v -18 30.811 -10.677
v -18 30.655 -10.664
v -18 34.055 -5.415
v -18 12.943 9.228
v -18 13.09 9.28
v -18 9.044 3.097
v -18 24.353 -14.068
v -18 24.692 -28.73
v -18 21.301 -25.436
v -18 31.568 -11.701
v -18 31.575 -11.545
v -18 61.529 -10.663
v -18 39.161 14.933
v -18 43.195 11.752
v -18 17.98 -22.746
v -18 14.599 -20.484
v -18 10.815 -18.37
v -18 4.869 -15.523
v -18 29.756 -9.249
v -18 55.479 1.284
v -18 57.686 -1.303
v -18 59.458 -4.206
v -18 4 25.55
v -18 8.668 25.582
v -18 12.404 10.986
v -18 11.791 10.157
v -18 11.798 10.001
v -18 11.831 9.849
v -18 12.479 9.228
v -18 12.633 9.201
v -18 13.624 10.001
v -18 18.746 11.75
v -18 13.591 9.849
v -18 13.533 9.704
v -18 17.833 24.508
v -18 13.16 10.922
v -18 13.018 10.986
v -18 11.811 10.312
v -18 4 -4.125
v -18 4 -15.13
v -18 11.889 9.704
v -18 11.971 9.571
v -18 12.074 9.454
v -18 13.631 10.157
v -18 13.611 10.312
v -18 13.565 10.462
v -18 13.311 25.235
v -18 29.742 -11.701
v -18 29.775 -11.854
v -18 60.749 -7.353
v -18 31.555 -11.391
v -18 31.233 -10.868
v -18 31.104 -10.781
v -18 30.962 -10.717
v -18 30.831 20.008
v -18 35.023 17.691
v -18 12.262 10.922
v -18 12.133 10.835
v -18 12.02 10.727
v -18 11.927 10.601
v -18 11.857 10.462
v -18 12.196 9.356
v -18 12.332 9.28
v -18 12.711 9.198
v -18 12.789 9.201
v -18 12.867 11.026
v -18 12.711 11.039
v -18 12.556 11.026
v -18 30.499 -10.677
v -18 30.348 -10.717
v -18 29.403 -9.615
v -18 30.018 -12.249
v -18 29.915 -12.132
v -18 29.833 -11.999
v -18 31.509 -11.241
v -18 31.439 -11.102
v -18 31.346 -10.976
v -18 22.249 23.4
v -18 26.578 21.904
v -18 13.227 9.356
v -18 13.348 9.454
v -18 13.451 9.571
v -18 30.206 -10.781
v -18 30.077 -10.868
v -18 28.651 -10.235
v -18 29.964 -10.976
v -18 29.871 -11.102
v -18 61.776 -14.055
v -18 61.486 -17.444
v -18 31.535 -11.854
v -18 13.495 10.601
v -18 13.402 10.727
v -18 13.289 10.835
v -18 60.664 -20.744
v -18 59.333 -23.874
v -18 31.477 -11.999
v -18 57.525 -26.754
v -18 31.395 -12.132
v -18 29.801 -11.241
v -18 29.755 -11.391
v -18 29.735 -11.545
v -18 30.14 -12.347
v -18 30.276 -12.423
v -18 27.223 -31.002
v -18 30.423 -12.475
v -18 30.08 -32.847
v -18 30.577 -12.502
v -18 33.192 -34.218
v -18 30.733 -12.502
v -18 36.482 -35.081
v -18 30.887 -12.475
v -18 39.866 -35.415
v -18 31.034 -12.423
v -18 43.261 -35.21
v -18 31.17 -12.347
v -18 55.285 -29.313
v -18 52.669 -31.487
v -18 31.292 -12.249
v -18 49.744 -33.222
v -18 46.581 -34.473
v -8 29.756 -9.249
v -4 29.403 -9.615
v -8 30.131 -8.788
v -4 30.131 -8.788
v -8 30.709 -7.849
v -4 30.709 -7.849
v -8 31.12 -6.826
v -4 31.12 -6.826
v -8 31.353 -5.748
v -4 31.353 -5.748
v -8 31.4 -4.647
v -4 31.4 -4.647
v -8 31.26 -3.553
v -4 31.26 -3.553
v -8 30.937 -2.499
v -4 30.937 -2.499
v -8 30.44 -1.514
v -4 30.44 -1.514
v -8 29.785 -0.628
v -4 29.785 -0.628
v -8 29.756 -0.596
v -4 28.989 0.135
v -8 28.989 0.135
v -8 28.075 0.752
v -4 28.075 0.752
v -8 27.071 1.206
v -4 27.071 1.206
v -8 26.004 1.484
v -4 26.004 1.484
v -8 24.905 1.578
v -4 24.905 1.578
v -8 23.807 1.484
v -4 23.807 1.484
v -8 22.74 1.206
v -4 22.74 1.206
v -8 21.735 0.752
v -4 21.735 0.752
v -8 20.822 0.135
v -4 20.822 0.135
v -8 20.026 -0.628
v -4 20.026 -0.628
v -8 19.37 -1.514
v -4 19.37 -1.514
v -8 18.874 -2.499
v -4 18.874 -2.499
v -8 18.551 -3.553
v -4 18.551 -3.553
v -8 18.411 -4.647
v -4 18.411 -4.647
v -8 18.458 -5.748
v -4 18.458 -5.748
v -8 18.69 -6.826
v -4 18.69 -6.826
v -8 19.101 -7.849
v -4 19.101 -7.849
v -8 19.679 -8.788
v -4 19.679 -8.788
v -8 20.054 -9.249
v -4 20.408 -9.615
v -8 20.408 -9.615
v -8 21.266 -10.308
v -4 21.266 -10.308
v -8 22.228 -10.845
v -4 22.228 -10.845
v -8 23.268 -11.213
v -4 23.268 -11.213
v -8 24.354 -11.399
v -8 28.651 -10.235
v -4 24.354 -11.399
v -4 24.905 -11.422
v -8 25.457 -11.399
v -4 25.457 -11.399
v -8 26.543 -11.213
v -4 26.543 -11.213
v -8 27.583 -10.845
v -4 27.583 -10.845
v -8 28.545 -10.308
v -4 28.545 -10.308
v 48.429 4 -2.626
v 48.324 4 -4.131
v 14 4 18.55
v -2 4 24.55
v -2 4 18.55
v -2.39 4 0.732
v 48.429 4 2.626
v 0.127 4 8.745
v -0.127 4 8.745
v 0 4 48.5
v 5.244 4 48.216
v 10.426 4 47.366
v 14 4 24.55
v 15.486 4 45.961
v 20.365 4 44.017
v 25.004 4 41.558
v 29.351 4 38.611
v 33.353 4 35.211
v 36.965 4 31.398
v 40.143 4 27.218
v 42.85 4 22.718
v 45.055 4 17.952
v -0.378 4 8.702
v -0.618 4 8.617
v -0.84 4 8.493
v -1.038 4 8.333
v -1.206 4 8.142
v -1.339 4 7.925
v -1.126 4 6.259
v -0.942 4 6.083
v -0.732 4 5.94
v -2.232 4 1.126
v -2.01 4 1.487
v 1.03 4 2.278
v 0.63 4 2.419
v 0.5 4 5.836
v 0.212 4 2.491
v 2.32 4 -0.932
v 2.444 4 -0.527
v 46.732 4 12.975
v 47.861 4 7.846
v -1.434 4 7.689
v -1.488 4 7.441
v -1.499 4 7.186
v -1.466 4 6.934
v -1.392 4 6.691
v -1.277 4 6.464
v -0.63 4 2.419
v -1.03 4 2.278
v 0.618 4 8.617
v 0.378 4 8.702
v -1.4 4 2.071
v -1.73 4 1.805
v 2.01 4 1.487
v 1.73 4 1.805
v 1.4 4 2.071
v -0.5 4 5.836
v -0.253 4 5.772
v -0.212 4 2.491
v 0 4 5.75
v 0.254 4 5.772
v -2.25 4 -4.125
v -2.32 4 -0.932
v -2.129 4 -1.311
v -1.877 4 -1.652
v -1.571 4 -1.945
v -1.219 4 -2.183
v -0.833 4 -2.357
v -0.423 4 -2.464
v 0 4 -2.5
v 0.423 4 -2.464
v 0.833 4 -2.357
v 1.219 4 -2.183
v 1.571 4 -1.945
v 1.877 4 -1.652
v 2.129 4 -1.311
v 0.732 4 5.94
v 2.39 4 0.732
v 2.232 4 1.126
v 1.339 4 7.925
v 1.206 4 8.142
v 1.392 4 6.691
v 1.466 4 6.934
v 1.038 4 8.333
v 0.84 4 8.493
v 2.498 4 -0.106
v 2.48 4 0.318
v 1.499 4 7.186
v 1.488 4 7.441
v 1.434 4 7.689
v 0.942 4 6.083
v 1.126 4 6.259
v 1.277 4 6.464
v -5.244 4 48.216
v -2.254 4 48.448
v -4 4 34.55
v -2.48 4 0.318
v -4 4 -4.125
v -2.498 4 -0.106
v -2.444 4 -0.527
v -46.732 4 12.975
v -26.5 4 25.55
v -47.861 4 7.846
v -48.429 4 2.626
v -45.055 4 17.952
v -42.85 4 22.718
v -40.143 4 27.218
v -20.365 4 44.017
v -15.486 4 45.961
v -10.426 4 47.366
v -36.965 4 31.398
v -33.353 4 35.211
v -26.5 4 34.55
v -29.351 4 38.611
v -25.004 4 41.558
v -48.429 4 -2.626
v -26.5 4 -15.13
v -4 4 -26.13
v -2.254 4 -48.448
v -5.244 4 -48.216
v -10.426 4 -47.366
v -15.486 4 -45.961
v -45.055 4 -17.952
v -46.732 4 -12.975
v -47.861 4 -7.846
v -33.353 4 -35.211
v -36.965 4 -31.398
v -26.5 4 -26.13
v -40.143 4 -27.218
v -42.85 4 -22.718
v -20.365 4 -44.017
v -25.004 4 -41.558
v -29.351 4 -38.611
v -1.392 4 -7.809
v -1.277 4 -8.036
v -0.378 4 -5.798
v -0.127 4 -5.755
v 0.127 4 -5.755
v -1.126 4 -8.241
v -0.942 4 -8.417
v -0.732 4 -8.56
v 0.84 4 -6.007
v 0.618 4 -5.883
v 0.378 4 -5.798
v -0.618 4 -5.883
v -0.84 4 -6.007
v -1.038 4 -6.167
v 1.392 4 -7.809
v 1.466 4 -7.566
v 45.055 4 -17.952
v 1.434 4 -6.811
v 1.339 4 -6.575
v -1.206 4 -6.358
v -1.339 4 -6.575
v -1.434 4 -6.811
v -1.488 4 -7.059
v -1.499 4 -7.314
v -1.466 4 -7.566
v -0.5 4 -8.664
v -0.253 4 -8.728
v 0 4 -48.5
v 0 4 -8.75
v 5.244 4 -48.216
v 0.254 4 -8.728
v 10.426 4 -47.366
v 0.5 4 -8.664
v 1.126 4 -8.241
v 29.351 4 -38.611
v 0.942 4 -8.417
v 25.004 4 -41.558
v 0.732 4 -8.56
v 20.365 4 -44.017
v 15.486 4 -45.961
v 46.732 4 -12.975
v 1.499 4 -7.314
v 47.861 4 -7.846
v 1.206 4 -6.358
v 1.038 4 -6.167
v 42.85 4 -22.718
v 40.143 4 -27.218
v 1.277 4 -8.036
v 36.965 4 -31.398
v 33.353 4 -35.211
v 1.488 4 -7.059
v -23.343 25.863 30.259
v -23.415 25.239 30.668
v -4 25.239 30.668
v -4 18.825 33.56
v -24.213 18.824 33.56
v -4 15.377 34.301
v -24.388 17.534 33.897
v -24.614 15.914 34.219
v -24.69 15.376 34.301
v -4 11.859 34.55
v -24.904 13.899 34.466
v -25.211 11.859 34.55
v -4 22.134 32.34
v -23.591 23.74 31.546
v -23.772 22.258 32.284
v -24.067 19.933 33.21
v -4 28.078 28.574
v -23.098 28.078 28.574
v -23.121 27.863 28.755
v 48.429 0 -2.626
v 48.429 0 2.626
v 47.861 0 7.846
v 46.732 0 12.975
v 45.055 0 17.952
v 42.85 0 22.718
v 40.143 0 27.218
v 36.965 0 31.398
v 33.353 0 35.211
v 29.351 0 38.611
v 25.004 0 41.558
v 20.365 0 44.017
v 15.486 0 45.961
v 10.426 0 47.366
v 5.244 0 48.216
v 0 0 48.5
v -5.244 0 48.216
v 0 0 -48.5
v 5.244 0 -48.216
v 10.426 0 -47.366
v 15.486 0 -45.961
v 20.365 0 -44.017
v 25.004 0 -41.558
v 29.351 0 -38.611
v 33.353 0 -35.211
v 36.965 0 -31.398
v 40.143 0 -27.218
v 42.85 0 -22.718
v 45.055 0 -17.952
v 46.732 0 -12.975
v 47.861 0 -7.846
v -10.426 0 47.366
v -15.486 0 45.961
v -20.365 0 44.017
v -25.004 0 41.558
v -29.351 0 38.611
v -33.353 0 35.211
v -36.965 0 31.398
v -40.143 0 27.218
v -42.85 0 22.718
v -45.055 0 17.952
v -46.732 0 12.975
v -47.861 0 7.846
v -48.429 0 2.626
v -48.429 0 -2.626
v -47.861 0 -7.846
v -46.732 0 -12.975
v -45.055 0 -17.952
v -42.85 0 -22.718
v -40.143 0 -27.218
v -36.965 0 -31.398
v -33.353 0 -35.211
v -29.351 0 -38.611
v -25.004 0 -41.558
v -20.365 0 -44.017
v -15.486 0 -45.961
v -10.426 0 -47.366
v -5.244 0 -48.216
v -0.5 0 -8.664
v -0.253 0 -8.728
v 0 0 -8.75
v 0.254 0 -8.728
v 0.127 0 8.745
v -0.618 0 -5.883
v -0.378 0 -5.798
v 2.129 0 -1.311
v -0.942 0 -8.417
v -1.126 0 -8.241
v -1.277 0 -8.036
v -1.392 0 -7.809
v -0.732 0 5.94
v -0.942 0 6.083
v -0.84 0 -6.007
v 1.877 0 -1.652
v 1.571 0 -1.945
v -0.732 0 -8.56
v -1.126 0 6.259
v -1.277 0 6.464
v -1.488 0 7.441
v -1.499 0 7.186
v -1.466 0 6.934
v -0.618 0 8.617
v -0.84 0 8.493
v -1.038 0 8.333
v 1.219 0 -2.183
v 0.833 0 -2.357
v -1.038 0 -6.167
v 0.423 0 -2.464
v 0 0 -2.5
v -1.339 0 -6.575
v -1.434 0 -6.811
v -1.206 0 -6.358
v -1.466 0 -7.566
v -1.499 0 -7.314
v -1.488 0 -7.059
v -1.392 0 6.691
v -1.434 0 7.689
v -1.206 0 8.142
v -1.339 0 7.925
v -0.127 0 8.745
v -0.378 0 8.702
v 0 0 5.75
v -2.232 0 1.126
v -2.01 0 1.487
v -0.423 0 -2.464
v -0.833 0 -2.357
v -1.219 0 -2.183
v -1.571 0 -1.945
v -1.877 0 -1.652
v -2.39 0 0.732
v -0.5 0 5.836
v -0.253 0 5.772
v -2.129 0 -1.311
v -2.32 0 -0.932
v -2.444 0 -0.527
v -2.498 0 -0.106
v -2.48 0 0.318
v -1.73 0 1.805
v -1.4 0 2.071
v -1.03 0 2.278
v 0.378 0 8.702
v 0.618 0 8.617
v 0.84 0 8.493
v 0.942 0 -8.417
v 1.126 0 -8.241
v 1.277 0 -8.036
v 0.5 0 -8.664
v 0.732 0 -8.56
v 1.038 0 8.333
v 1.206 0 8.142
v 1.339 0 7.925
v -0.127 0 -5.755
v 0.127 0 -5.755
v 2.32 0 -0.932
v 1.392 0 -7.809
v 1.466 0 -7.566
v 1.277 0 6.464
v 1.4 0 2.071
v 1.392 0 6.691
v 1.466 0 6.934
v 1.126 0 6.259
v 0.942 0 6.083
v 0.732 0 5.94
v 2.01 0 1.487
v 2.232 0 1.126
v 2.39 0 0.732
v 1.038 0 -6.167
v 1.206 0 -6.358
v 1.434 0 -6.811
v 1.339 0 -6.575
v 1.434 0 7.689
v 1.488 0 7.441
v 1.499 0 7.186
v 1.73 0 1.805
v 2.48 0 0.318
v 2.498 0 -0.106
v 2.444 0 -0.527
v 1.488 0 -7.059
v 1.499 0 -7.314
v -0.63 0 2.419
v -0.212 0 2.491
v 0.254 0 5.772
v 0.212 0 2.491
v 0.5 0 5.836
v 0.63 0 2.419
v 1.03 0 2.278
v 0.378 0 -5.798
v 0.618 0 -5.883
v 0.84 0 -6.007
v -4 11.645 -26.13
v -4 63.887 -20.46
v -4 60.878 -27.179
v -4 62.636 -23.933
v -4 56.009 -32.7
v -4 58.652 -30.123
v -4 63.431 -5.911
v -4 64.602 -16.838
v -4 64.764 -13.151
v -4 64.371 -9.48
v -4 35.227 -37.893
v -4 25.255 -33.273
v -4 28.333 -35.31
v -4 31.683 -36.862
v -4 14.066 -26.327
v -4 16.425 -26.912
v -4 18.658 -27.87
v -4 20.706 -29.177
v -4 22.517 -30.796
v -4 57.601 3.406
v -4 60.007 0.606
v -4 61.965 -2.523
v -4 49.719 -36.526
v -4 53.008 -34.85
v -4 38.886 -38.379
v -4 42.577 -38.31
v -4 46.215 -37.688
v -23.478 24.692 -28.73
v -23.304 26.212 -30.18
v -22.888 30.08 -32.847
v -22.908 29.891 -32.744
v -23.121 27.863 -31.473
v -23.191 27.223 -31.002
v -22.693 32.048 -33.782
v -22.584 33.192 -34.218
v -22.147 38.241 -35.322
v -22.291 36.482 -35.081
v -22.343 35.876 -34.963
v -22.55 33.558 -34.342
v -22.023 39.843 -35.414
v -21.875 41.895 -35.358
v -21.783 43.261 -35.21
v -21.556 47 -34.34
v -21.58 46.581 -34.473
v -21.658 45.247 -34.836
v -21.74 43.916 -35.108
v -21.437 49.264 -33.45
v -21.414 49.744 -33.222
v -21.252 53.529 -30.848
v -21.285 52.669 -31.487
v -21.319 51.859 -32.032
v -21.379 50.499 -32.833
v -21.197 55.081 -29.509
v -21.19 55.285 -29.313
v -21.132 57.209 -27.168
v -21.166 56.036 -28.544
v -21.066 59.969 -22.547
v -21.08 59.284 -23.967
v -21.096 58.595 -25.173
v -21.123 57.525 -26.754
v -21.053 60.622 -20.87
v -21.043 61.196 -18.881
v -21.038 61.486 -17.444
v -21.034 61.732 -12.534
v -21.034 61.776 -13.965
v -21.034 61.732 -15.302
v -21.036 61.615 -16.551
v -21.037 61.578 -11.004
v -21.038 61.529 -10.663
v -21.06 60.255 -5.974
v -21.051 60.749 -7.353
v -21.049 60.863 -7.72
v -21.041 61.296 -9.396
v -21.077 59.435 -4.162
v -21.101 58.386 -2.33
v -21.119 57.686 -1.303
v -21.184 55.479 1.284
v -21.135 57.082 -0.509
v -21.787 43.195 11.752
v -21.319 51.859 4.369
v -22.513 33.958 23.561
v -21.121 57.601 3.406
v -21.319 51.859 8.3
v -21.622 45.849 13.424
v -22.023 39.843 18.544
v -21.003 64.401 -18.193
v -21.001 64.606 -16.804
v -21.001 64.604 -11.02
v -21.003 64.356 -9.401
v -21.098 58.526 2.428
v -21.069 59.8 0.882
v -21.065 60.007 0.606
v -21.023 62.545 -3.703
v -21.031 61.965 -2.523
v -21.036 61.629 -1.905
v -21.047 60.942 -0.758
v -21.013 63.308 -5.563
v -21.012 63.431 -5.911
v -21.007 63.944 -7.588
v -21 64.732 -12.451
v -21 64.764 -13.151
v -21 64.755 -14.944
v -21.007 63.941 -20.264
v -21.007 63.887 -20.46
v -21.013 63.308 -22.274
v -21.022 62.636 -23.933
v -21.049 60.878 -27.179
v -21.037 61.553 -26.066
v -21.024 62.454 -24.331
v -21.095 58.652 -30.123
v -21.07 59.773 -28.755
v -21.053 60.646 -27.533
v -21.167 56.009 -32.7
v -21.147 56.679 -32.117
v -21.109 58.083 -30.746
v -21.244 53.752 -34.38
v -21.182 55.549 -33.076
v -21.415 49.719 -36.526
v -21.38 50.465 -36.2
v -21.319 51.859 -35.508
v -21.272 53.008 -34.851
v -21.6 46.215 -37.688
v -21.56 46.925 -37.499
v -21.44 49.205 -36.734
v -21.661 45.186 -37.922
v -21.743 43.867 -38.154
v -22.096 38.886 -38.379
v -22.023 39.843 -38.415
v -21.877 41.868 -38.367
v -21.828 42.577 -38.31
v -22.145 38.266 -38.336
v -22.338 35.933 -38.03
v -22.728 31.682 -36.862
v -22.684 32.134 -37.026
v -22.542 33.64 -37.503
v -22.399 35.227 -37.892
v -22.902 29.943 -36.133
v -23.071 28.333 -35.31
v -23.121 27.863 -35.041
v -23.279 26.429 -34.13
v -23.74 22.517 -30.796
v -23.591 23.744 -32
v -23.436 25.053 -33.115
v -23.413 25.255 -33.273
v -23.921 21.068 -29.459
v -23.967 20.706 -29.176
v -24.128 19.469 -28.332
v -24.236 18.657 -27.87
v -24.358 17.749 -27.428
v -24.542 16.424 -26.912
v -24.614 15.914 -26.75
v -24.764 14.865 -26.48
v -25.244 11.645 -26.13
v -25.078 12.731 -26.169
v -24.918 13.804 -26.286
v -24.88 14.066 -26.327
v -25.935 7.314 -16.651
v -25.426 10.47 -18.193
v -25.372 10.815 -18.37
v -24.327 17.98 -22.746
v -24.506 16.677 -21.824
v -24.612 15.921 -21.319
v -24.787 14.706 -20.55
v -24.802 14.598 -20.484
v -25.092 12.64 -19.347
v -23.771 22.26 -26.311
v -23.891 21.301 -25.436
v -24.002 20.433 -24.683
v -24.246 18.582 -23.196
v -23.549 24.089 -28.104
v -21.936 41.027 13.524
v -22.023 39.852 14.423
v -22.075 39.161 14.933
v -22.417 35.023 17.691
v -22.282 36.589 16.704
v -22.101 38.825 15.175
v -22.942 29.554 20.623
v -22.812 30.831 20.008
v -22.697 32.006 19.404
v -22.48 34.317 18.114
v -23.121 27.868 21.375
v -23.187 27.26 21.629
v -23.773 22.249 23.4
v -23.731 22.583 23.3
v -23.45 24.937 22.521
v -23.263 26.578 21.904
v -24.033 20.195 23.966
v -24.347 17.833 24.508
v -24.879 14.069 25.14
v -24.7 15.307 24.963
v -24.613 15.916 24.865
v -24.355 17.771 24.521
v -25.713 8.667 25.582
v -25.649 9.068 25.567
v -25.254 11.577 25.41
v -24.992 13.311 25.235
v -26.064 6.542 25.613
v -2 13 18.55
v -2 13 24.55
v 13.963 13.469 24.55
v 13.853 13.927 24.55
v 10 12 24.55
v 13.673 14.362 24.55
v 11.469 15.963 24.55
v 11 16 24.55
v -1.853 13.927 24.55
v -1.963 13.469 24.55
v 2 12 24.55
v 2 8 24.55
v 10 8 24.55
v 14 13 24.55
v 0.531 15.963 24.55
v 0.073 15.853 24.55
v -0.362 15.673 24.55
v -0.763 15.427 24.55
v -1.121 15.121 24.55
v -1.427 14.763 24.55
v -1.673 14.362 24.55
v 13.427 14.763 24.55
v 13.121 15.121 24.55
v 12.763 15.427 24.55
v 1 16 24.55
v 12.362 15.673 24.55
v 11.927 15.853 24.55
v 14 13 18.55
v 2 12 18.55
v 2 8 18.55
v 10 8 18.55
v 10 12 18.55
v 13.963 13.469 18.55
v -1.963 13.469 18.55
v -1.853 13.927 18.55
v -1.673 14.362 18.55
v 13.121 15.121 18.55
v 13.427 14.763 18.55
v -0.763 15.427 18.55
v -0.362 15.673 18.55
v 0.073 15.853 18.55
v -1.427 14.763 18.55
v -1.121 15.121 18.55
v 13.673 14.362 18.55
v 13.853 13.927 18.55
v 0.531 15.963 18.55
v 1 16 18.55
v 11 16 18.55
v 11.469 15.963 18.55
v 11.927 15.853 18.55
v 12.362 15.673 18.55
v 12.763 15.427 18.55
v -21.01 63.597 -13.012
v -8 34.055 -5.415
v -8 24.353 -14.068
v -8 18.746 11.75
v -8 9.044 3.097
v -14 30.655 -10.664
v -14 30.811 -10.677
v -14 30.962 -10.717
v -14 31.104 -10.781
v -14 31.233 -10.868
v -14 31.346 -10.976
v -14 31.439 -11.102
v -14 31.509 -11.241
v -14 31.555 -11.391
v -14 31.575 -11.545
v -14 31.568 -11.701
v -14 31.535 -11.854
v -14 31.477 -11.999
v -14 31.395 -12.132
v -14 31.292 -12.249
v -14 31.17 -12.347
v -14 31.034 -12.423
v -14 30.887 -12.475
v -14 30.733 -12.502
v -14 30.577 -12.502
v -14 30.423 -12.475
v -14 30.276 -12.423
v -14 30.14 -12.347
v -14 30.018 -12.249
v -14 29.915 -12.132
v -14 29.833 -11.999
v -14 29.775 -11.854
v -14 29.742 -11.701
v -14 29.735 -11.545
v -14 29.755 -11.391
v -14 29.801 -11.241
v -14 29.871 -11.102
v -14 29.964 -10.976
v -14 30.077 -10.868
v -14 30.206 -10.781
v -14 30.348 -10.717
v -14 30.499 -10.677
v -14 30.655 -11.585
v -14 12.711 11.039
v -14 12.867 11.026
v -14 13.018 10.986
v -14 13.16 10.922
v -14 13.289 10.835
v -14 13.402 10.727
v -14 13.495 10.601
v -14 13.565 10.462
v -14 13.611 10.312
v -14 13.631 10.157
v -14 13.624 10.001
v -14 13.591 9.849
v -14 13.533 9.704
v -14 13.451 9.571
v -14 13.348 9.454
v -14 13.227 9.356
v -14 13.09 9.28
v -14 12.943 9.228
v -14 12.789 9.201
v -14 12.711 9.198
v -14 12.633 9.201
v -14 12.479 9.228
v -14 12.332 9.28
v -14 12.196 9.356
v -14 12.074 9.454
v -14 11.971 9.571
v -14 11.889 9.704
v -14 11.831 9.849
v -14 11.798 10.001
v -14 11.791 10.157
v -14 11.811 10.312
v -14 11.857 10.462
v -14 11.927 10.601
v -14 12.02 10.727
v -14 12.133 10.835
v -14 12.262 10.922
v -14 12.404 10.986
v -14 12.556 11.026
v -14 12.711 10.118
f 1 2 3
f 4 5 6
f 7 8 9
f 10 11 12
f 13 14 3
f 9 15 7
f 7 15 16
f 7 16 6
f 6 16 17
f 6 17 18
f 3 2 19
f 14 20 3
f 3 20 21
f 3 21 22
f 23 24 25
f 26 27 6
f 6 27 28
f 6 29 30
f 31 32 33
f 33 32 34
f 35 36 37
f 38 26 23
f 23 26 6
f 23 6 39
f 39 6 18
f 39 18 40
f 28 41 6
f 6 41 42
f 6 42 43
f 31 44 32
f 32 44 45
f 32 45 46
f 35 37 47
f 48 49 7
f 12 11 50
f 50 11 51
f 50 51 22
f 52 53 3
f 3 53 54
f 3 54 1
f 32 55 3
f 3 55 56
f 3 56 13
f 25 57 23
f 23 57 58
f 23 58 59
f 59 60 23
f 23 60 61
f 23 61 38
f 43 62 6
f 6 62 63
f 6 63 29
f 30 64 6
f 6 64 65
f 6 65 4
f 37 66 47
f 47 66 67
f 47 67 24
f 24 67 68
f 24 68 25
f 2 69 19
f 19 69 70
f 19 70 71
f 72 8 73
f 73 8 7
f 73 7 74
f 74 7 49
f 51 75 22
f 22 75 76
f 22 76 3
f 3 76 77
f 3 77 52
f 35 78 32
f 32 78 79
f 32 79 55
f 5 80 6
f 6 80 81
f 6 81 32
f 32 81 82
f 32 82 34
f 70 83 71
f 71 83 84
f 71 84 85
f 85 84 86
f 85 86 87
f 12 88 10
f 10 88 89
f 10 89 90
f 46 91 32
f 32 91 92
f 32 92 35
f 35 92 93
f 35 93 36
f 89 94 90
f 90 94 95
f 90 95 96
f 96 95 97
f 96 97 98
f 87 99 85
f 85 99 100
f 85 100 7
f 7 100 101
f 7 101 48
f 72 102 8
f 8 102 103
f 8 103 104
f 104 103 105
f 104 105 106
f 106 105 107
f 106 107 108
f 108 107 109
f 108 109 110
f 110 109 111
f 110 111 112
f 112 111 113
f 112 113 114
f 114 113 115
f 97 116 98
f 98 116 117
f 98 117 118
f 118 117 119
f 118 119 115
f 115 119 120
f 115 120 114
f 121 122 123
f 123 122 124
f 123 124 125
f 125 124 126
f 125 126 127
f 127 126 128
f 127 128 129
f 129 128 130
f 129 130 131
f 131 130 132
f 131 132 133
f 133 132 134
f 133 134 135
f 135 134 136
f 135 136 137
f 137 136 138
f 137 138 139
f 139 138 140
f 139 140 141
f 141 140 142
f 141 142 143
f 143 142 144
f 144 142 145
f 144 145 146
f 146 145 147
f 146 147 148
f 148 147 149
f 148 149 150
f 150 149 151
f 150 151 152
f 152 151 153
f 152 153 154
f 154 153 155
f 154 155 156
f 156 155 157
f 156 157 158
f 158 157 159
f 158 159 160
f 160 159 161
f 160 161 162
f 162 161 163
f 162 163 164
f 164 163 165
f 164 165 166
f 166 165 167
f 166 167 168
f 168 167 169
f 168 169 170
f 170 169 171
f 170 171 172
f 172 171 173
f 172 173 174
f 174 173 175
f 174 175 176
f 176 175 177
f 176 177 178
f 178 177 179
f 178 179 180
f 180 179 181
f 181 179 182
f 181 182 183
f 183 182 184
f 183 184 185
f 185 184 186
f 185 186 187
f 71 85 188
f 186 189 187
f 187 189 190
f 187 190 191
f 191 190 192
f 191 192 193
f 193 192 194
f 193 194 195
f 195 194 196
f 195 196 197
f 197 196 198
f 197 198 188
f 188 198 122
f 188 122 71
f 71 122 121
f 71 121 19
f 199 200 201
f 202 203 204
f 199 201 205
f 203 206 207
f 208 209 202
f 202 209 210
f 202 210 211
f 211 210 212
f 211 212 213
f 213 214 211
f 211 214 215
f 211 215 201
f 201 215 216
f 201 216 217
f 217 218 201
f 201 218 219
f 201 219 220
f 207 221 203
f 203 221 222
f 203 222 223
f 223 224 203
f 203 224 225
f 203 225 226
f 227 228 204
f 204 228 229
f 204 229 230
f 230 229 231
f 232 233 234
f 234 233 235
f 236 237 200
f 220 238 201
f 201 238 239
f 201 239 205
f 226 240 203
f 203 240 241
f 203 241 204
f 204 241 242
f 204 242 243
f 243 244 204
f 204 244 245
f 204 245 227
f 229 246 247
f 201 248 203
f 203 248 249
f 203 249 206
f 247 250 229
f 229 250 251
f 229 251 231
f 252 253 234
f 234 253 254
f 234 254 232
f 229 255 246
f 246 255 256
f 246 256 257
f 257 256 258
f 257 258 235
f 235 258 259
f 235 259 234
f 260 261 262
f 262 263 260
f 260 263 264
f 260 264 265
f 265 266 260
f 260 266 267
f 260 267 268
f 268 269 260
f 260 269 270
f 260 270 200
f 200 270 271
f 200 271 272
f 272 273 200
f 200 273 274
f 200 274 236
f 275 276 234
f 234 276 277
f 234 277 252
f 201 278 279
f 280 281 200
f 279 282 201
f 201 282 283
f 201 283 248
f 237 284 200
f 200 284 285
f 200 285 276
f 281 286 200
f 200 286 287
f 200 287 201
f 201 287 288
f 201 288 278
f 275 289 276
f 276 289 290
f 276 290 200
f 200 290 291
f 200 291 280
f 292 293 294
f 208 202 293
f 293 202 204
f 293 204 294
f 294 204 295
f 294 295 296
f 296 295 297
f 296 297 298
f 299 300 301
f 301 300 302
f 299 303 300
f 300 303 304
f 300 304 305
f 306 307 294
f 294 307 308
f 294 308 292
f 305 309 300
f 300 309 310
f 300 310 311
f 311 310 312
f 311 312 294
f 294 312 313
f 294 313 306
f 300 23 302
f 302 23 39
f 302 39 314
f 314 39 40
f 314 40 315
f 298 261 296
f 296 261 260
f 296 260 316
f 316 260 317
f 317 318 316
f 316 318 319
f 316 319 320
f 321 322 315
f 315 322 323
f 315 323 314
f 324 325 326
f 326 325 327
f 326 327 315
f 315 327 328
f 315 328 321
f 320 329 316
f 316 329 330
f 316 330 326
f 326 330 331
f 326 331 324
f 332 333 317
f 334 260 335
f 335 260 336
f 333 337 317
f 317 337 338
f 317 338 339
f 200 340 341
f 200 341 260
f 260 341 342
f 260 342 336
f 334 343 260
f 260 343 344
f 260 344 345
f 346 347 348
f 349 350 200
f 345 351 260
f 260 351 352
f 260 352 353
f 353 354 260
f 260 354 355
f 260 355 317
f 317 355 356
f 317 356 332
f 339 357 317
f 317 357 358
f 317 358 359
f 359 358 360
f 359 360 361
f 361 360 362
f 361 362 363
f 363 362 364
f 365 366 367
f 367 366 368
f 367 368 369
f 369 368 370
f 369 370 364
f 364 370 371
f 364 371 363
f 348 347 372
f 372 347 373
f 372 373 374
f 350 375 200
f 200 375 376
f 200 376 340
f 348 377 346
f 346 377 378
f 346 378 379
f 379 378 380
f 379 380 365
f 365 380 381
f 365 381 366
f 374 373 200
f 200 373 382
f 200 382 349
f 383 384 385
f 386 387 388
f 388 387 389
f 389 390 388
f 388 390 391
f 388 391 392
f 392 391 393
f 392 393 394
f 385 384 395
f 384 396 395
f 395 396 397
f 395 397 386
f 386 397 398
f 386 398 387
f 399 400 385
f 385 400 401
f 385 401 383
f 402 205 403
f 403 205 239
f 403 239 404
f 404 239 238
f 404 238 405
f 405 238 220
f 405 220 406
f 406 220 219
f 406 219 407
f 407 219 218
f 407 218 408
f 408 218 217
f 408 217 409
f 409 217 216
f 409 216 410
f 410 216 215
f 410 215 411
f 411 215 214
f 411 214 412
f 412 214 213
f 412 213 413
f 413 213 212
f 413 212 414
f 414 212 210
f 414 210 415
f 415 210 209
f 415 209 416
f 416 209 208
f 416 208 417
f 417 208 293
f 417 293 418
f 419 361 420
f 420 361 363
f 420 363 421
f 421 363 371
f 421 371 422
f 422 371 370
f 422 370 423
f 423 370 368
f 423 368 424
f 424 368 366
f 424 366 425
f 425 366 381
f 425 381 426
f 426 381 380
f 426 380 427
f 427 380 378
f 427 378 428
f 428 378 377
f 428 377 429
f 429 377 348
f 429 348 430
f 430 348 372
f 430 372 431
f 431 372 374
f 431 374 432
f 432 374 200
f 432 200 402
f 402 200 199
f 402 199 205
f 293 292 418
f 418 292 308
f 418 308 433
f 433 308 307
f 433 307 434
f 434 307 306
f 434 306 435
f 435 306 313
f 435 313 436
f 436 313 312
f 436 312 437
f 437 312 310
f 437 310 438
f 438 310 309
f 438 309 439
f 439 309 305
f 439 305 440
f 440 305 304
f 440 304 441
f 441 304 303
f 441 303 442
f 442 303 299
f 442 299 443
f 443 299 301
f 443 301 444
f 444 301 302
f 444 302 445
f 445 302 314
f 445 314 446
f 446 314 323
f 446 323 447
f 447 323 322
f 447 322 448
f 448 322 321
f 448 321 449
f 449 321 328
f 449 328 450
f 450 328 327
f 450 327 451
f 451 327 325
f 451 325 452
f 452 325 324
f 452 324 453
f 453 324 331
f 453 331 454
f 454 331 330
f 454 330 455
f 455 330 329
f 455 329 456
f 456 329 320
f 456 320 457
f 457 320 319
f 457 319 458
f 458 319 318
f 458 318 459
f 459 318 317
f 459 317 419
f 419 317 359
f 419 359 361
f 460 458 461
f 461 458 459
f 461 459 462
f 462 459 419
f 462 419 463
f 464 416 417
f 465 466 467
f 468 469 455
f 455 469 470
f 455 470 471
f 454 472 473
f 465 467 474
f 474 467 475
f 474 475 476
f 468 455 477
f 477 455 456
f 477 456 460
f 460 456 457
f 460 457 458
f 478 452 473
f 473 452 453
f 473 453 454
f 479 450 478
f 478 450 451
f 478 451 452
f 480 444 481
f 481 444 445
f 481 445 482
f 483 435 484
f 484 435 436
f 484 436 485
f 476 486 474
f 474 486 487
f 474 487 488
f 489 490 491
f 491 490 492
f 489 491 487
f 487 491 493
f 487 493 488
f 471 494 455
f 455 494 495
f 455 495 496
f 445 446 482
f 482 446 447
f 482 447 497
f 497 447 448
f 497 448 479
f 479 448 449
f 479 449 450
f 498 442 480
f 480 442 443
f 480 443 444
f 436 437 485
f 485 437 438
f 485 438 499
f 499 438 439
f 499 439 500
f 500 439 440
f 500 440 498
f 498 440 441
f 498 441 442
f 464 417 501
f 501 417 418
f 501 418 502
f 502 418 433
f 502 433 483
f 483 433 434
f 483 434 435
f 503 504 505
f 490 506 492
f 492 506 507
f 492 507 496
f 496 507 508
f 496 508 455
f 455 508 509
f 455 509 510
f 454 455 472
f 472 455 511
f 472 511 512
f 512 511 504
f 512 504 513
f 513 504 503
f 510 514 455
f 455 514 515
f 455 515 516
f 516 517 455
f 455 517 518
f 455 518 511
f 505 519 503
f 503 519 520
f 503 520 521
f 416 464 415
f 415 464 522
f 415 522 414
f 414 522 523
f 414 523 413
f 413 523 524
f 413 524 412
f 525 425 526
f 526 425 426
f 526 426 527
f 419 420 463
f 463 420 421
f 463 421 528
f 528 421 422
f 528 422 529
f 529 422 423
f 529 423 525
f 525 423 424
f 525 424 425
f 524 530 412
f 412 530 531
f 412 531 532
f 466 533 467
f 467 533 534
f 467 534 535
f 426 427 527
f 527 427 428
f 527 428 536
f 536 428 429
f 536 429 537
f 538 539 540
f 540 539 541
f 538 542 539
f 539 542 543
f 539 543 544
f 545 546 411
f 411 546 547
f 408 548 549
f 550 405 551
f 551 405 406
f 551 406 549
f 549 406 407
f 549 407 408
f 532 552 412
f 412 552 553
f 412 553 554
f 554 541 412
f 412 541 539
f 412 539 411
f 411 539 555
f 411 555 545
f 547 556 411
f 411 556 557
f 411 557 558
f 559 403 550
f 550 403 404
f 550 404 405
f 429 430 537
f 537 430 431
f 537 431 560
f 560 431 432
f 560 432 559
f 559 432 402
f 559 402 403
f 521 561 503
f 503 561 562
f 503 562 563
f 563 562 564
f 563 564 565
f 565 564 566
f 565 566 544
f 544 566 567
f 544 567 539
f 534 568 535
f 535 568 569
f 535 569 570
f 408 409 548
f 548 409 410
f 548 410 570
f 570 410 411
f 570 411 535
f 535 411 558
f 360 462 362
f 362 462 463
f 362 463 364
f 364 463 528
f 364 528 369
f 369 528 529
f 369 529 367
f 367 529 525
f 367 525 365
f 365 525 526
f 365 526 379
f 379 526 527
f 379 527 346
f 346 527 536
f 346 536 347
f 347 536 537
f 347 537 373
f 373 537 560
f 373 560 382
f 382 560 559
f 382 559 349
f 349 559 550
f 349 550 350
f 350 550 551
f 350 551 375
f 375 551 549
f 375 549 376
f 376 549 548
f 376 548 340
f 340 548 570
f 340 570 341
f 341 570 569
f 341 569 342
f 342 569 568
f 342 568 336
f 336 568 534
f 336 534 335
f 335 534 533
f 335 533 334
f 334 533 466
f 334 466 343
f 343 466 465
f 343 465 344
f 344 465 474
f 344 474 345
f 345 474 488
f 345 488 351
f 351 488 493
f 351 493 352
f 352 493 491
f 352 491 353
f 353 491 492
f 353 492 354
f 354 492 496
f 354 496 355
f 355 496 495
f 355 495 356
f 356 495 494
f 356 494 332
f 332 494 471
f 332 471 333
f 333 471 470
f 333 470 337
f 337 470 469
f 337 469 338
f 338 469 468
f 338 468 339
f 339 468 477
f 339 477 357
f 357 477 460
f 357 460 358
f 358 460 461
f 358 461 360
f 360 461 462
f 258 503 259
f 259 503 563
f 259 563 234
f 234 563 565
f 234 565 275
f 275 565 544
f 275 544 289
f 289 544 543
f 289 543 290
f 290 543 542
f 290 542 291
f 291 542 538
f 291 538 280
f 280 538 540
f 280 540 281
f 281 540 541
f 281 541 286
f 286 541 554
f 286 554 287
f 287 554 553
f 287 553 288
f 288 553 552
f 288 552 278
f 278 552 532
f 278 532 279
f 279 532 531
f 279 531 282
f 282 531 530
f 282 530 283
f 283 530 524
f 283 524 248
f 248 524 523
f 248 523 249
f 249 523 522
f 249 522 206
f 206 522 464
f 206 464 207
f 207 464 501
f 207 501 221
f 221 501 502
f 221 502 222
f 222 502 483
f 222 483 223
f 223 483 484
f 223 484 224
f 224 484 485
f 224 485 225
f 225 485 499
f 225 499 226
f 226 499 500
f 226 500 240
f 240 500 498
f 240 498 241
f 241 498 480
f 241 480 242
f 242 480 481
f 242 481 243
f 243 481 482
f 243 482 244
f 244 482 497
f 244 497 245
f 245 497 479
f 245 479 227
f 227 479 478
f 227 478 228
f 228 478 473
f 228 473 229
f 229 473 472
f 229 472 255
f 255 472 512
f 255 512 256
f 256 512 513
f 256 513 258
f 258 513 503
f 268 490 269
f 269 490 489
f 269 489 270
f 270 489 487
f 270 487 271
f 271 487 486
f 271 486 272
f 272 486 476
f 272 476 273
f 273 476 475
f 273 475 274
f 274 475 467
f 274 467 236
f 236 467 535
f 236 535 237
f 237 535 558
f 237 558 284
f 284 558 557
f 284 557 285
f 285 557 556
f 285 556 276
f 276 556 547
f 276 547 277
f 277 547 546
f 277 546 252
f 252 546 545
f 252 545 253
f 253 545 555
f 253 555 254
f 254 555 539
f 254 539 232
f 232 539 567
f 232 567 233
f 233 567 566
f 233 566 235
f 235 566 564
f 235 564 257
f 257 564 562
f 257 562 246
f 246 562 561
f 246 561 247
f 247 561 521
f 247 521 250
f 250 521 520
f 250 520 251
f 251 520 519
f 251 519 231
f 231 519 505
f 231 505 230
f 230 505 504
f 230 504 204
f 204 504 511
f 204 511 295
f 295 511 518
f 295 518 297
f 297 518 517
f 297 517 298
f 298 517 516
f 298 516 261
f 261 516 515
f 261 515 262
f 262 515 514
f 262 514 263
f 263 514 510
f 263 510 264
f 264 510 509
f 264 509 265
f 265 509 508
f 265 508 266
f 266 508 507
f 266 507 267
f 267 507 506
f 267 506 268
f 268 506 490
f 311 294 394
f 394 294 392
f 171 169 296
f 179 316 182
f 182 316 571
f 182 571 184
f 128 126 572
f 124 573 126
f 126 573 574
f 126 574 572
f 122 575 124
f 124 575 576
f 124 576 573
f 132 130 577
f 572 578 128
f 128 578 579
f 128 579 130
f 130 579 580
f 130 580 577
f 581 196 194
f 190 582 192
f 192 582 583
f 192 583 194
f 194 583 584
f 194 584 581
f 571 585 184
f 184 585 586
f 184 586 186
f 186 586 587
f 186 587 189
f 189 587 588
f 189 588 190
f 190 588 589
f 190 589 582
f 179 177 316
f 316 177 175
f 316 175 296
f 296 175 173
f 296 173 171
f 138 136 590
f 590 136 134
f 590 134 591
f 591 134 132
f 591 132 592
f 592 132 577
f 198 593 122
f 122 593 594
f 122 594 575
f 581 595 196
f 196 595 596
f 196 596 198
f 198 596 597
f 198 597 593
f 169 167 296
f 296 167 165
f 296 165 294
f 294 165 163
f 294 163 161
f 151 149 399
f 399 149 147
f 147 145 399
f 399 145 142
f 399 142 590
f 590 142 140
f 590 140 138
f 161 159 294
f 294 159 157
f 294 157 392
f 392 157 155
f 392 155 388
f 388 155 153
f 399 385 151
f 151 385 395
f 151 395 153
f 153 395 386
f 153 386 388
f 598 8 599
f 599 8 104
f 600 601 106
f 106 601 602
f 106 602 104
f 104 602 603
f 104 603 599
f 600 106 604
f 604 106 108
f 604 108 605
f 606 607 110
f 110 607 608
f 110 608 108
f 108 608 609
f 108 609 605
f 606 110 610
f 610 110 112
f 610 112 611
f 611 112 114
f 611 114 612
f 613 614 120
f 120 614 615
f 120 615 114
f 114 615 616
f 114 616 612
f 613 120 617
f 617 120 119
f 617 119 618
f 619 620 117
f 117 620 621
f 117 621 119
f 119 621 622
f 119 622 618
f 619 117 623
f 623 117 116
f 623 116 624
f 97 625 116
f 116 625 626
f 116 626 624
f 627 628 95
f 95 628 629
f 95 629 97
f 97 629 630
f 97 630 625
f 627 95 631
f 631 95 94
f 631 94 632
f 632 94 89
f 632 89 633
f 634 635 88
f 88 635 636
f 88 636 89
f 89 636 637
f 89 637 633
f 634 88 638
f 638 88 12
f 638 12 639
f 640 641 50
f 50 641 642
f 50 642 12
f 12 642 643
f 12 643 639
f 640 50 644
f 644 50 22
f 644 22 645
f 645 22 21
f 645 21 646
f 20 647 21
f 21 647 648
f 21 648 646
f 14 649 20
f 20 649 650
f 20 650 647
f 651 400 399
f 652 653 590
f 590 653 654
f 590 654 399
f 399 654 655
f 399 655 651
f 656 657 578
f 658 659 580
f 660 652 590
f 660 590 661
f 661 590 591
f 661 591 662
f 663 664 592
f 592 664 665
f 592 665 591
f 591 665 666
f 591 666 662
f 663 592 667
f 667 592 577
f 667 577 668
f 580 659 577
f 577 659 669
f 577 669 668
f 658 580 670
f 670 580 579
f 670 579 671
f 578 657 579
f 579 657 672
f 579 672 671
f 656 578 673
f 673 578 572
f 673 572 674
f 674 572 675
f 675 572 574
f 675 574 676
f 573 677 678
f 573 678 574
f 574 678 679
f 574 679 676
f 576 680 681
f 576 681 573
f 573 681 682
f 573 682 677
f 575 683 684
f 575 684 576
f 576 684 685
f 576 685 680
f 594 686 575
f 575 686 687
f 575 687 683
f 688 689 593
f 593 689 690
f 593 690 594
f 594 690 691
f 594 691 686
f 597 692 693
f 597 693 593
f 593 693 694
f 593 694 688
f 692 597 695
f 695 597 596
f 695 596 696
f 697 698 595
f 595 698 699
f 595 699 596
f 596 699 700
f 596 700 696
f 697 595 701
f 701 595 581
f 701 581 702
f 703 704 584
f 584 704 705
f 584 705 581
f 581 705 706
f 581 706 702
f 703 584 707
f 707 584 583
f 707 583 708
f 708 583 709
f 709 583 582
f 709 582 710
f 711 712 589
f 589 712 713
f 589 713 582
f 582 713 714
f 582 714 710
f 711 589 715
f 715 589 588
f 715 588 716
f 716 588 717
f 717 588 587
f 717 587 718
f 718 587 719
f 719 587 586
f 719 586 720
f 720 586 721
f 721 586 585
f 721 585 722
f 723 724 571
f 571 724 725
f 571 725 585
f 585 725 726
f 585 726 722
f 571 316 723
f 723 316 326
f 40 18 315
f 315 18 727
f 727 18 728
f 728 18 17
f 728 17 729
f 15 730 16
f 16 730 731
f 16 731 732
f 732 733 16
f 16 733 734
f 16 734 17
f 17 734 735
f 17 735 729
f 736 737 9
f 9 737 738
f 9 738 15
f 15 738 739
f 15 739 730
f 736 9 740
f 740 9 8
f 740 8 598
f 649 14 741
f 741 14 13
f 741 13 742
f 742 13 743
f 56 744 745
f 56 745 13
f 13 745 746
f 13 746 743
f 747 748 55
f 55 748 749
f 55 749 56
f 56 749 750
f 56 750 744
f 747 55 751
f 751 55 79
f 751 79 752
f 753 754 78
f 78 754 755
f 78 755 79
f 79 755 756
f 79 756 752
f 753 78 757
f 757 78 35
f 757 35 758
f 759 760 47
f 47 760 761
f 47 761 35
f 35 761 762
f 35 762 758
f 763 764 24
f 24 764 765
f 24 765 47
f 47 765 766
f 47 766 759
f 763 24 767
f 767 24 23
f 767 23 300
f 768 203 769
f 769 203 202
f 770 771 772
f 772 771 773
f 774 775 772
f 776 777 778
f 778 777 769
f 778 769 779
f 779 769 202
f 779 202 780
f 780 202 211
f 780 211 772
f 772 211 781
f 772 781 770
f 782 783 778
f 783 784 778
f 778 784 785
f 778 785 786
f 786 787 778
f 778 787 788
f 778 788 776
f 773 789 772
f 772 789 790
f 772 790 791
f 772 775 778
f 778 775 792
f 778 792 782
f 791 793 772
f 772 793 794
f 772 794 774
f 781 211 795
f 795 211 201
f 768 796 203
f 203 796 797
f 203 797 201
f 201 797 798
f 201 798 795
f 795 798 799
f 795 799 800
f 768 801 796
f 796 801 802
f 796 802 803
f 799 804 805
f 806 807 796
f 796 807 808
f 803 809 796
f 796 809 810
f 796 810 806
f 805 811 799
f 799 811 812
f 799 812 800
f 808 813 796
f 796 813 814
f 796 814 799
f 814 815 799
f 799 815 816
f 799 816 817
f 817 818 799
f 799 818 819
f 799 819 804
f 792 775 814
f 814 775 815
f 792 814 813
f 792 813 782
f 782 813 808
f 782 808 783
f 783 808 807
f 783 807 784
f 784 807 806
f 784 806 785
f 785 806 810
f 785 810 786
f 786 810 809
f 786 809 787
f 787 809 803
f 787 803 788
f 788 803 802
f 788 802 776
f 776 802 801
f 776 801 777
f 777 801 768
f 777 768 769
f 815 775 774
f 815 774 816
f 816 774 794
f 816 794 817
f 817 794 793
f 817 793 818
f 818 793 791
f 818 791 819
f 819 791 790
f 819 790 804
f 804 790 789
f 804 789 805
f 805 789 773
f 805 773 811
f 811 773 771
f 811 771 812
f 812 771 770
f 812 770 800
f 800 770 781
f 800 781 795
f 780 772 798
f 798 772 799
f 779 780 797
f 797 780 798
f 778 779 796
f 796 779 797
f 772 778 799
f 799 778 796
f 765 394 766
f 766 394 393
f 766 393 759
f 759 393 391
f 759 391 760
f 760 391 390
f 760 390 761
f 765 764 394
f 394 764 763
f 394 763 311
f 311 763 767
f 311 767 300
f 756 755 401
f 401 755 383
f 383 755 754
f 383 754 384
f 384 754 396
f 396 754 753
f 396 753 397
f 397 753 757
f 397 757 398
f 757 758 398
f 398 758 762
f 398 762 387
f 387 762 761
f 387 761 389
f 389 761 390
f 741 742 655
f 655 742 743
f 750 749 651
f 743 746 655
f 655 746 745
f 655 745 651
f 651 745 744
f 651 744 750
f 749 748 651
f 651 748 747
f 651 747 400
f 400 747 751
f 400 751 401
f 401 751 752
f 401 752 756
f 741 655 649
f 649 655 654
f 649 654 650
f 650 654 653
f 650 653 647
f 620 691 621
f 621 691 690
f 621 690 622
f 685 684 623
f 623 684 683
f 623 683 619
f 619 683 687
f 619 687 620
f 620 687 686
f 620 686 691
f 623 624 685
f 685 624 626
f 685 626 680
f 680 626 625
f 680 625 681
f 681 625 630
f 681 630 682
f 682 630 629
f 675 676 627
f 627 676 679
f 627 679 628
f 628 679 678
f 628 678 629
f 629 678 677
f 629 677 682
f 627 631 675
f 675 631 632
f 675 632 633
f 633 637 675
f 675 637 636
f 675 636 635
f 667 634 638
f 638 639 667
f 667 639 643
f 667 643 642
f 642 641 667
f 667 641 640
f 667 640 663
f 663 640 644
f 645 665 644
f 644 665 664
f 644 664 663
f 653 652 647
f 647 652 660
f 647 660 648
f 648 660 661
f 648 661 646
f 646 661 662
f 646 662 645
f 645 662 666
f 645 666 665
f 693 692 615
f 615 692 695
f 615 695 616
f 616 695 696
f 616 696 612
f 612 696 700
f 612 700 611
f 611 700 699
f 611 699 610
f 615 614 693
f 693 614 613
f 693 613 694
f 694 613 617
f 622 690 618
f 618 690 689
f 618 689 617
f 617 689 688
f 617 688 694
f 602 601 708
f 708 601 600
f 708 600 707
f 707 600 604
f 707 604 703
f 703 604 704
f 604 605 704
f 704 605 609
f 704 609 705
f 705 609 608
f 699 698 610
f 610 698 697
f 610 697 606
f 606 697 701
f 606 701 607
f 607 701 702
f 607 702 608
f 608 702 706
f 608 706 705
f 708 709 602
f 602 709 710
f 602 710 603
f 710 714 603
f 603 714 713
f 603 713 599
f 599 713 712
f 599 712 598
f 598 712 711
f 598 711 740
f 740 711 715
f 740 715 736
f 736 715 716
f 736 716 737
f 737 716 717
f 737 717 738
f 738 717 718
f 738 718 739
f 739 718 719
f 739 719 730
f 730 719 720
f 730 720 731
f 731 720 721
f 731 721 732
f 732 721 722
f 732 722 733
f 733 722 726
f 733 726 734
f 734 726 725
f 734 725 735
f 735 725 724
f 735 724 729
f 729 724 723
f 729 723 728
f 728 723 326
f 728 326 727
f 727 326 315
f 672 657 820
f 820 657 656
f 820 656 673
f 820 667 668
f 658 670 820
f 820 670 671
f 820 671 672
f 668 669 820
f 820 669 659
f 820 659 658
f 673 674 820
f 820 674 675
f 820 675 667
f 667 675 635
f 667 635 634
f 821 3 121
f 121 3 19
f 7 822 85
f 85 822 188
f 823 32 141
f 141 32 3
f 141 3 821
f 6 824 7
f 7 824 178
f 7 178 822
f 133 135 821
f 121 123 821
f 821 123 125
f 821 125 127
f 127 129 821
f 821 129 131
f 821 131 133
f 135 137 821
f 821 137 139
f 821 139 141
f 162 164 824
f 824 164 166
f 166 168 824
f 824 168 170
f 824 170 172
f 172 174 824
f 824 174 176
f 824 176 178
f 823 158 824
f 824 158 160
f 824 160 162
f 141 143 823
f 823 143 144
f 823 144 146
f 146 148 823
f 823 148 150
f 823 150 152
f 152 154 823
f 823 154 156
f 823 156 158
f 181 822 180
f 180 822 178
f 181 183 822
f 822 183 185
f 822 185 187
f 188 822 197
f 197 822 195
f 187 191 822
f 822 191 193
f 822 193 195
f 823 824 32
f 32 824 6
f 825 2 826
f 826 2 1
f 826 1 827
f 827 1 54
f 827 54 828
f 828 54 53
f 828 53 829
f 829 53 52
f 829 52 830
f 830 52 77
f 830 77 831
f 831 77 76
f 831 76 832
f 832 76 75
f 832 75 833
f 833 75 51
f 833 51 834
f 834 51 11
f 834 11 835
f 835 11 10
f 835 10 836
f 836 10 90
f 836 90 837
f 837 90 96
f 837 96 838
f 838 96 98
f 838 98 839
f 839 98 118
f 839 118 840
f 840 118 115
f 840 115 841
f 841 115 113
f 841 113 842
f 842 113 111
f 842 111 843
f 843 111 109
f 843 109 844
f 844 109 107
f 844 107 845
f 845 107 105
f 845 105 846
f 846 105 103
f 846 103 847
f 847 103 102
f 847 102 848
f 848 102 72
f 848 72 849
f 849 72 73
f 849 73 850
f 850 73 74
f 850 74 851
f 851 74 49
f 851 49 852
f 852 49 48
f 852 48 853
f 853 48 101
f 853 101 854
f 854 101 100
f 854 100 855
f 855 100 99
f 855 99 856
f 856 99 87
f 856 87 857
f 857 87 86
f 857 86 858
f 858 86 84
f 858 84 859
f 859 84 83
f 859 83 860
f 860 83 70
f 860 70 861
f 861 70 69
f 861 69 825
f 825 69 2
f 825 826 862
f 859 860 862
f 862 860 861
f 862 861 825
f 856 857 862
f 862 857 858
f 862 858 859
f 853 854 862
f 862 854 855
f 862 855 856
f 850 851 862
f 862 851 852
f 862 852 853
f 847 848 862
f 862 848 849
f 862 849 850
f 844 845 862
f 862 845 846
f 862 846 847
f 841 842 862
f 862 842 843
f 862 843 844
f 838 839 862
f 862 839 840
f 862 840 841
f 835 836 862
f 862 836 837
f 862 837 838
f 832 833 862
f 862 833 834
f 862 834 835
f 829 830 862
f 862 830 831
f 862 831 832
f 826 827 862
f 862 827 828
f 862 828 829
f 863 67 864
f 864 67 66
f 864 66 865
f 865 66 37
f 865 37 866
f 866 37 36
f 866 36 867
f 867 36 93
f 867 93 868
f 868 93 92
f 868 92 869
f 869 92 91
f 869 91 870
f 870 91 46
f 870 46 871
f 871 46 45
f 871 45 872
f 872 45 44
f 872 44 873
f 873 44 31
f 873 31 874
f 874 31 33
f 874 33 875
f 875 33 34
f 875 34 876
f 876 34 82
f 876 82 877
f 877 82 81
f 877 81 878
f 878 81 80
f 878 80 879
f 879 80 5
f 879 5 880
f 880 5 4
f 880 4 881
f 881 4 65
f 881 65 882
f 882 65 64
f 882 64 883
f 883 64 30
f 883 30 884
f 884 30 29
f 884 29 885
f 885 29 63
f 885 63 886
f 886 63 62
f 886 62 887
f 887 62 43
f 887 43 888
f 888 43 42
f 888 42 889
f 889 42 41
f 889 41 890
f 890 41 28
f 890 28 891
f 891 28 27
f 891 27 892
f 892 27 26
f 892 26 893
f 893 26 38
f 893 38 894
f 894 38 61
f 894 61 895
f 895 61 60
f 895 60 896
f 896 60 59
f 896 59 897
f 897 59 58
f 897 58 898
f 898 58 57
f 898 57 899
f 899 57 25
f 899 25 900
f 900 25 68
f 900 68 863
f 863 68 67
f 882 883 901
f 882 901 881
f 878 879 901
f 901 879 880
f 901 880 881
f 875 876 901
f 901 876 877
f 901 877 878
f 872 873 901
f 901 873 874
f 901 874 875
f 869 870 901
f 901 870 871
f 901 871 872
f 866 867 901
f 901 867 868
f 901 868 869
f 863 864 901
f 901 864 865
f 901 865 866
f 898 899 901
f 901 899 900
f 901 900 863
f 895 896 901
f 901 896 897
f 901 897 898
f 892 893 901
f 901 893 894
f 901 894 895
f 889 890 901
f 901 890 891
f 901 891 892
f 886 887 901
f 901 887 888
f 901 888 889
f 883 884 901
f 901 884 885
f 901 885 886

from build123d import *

# Parameters (mm, degrees)
SKETCH2_R                       = 48.5
BOSS_EXTRUDE1_DEPTH             = 4
SKETCH4_R                       = 1.5
CUT_EXTRUDE2_DEPTH              = 69.705894944
SKETCH5_R                       = 2.5
CUT_EXTRUDE3_DEPTH              = 69.705894944
BOSS_EXTRUDE2_DEPTH             = 14
BOSS_EXTRUDE7_DEPTH             = 9
BOSS_EXTRUDE7_DIRECTION_2_REACH = 104.912
BOSS_EXTRUDE10_DEPTH            = 9
SKETCH27_W                      = 16
SKETCH27_H                      = 6
BOSS_EXTRUDE11_DEPTH            = 12
FILLET6_R                       = 3
CUT_EXTRUDE16_REACH             = 111.016
SKETCH28_W                      = 8
SKETCH28_H                      = 4
CUT_EXTRUDE17_DEPTH             = 95.342420983
CUT_EXTRUDE17_DEPTH_BACK        = 95.342420983
SKETCH31_R                      = 6.5
CUT_EXTRUDE18_DEPTH             = 105.740118374
CUT_EXTRUDE19_DEPTH             = 10
SKETCH32_R                      = 0.92049896
CUT_EXTRUDE20_DEPTH             = 4
SKETCH32_3_R                    = 0.92049896
CUT_EXTRUDE21_DEPTH             = 4


with BuildPart() as part:
    # Sketch2 → Boss-Extrude1 (new body)
    with BuildSketch(Plane(origin=(0, 0, 0), x_dir=(1, 0, 0), z_dir=(0, 1, 0))):
        with Locations(Location((0, 0, 0), (0, 0, 270))):
            Circle(SKETCH2_R)
    extrude(amount=BOSS_EXTRUDE1_DEPTH)

    # Sketch4 → Cut-Extrude2 (cut, through all)
    with BuildSketch(Plane.XZ):
        with Locations(Location((0, 7.25, 0), (0, 0, 270))):
            Circle(SKETCH4_R)
        with Locations(Location((0, -7.25, 0), (0, 0, 270))):
            Circle(SKETCH4_R)
    extrude(amount=-CUT_EXTRUDE2_DEPTH, mode=Mode.SUBTRACT)

    # Sketch5 → Cut-Extrude3 (cut, through all)
    with BuildSketch(Plane.XZ):
        with Locations(Location((0, 0, 0), (0, 0, 270))):
            Circle(SKETCH5_R)
    extrude(amount=-CUT_EXTRUDE3_DEPTH, mode=Mode.SUBTRACT)

    # Sketch7 → Boss-Extrude2 (add)
    with BuildSketch(Plane(origin=(-4, 0, 0), x_dir=(0, 0, -1), z_dir=(1, 0, 0))):
        with BuildLine():
            Line((23.129947874, 4), (23.129947874, 11.644549616))
            ThreePointArc((23.129947874, 11.644549616), (24.589048403, 18.743749901), (28.729797284, 24.692011643))
            ThreePointArc((28.729797284, 24.692011643), (29.313383054, 55.284736897), (-1.284289494, 55.479275971))
            Line((-1.284289494, 55.479275971), (-27.227315747, 29.536249718))
            ThreePointArc((-27.227315747, 29.536249718), (-32.64663453, 21.425665997), (-34.549646217, 11.858580188))
            Line((-34.549646217, 11.858580188), (-34.549646217, 4))
            Line((-34.549646217, 4), (23.129947874, 4))
        make_face()
    extrude(amount=-BOSS_EXTRUDE2_DEPTH)

    # Sketch17 → Boss-Extrude7 (add)
    with BuildSketch(Plane.ZY.offset(18)):
        with BuildLine():
            ThreePointArc((34.549646217, 11.858580188), (33.008342843, 20.500891953), (28.574482006, 28.077569775))
            ThreePointArc((28.574482006, 28.077569775), (27.915386359, 28.820289685), (27.227315747, 29.536249718))
            Line((27.227315747, 29.536249718), (1.284289494, 55.479275971))
            Line((1.284289494, 55.479275971), (26.295003593, 26.127182305))
            ThreePointArc((26.295003593, 26.127182305), (30.194232218, 19.461281607), (31.549646217, 11.858580188))
            Line((31.549646217, 11.858580188), (31.549646217, 4))
            Line((31.549646217, 4), (34.549646217, 4))
            Line((34.549646217, 4), (34.549646217, 11.858580188))
        make_face()
        with BuildLine():
            Line((28.574482006, 28.077569775), (3.405609837, 57.600596315))
            ThreePointArc((3.405609837, 57.600596315), (-31.461505391, 57.378912253), (-30.796489049, 22.517434639))
            ThreePointArc((-30.796489049, 22.517434639), (-27.345864981, 17.560549854), (-26.129947874, 11.644549616))
            Line((-26.129947874, 11.644549616), (-26.129947874, 4))
            Line((-26.129947874, 4), (-23.129947874, 4))
            Line((-23.129947874, 4), (-23.129947874, 11.644549616))
            ThreePointArc((-23.129947874, 11.644549616), (-24.589048403, 18.743749901), (-28.729797284, 24.692011643))
            ThreePointArc((-28.729797284, 24.692011643), (-29.313383054, 55.284736897), (1.284289494, 55.479275971))
            Line((1.284289494, 55.479275971), (27.227315747, 29.536249718))
            ThreePointArc((27.227315747, 29.536249718), (27.915386359, 28.820289685), (28.574482006, 28.077569775))
        make_face()
    extrude(amount=BOSS_EXTRUDE7_DEPTH)

    # Boss-Extrude7 direction 2: up to this face of the body (flat: up to its plane)
    boss_extrude7_direction_2_end = Plane(part.part.faces().sort_by_distance((-4, 29.339157607, -2.736239069))[0])
    # Sketch17 → Boss-Extrude7 direction 2 (add, up to the picked face)
    with BuildSketch(Plane.ZY.offset(18), mode=Mode.PRIVATE) as boss_extrude7_direction_2_sk1:
        with BuildLine():
            ThreePointArc((34.549646217, 11.858580188), (33.008342843, 20.500891953), (28.574482006, 28.077569775))
            ThreePointArc((28.574482006, 28.077569775), (27.915386359, 28.820289685), (27.227315747, 29.536249718))
            Line((27.227315747, 29.536249718), (1.284289494, 55.479275971))
            Line((1.284289494, 55.479275971), (26.295003593, 26.127182305))
            ThreePointArc((26.295003593, 26.127182305), (30.194232218, 19.461281607), (31.549646217, 11.858580188))
            Line((31.549646217, 11.858580188), (31.549646217, 4))
            Line((31.549646217, 4), (34.549646217, 4))
            Line((34.549646217, 4), (34.549646217, 11.858580188))
        make_face()
    boss_extrude7_direction_2_tool1 = split(extrude(boss_extrude7_direction_2_sk1.sketch, amount=-BOSS_EXTRUDE7_DIRECTION_2_REACH, mode=Mode.PRIVATE), bisect_by=boss_extrude7_direction_2_end, keep=Keep.BOTH, mode=Mode.PRIVATE)
    # Sketch17 → Boss-Extrude7 direction 2 (add, up to the picked face)
    with BuildSketch(Plane.ZY.offset(18), mode=Mode.PRIVATE) as boss_extrude7_direction_2_sk2:
        with BuildLine():
            Line((28.574482006, 28.077569775), (3.405609837, 57.600596315))
            ThreePointArc((3.405609837, 57.600596315), (-31.461505391, 57.378912253), (-30.796489049, 22.517434639))
            ThreePointArc((-30.796489049, 22.517434639), (-27.345864981, 17.560549854), (-26.129947874, 11.644549616))
            Line((-26.129947874, 11.644549616), (-26.129947874, 4))
            Line((-26.129947874, 4), (-23.129947874, 4))
            Line((-23.129947874, 4), (-23.129947874, 11.644549616))
            ThreePointArc((-23.129947874, 11.644549616), (-24.589048403, 18.743749901), (-28.729797284, 24.692011643))
            ThreePointArc((-28.729797284, 24.692011643), (-29.313383054, 55.284736897), (1.284289494, 55.479275971))
            Line((1.284289494, 55.479275971), (27.227315747, 29.536249718))
            ThreePointArc((27.227315747, 29.536249718), (27.915386359, 28.820289685), (28.574482006, 28.077569775))
        make_face()
    boss_extrude7_direction_2_tool2 = split(extrude(boss_extrude7_direction_2_sk2.sketch, amount=-BOSS_EXTRUDE7_DIRECTION_2_REACH, mode=Mode.PRIVATE), bisect_by=boss_extrude7_direction_2_end, keep=Keep.BOTH, mode=Mode.PRIVATE)
    add(boss_extrude7_direction_2_tool1.solids().sort_by(Axis((-18, 4.612919, 33.049646), (1, 0, 0)))[0])
    add(boss_extrude7_direction_2_tool2.solids().sort_by(Axis((-18, 43.147366, 14.895406), (1, 0, 0)))[0])

    # Sketch25 → Boss-Extrude10 (add)
    with BuildSketch(Plane.ZY.offset(18)):
        with BuildLine():
            ThreePointArc((-28.729797284, 24.692011643), (-24.589048403, 18.743749901), (-23.129947874, 11.644549616))
            Line((-23.129947874, 11.644549616), (-23.129947874, 4))
            Line((-23.129947874, 4), (-15.129947874, 4))
            add(Edge.make_bspline(
                [(-28.729797284, 24.692011643), (-21.954867515, 18.253200081), (-19.09405247, 12.798017691), (-15.129947874, 4)],
                knots=[0, 0, 0, 0, 1, 1, 1, 1], degree=3))
        make_face()
        with BuildLine():
            add(Edge.make_bspline(
                [(11.751619577, 43.19501844), (26.551255916, 25.8264495), (25.549646217, 4)],
                knots=[0, 0, 0, 1, 1, 1], degree=2))
            Line((25.549646217, 4), (31.549646217, 4))
            Line((31.549646217, 4), (31.549646217, 11.858580188))
            ThreePointArc((31.549646217, 11.858580188), (30.194232218, 19.461281607), (26.295003593, 26.127182305))
            Line((26.295003593, 26.127182305), (11.751619577, 43.19501844))
        make_face()
    extrude(amount=BOSS_EXTRUDE10_DEPTH)

    # Sketch27 → Boss-Extrude11 (add)
    with BuildSketch(Plane(origin=(0, 4, 0), x_dir=(1, 0, 0), z_dir=(0, 1, 0))):
        with Locations((6, -21.549646217)):
            Rectangle(SKETCH27_W, SKETCH27_H)
    extrude(amount=BOSS_EXTRUDE11_DEPTH)

    # Fillet6
    fillet6_edges = [part.edges().sort_by_distance(p)[0] for p in [
        (-2, 16, 21.549646217),
        (14, 16, 21.549646217),
    ]]
    fillet(fillet6_edges, radius=FILLET6_R)

    # Sketch28 → Cut-Extrude16 (cut, up to next)
    with BuildSketch(Plane.XY.offset(24.549646217), mode=Mode.PRIVATE) as cut_extrude16_sk1:
        with Locations((6, 10)):
            Rectangle(SKETCH28_W, SKETCH28_H)
    cut_extrude16_tool1 = extrude(cut_extrude16_sk1.sketch, amount=-CUT_EXTRUDE16_REACH, mode=Mode.PRIVATE) & part.part
    add(cut_extrude16_tool1.solids().sort_by_distance((6, 10, 24.549646))[0], mode=Mode.SUBTRACT)

    # Sketch29 → Cut-Extrude17 (cut, two sides: drawn at the far end of the back side and taken through both)
    with BuildSketch(Plane.XY.offset(-CUT_EXTRUDE17_DEPTH_BACK)):
        with BuildLine():
            Line((-21, 64.776480176), (-27, 64.776480176))
            Line((-27, 64.776480176), (-27, 4))
            Line((-27, 4), (-26.5, 4))
            add(Edge.make_bspline(
                [(-21, 64.776480176), (-21.220459696, 34.140901434), (-26.5, 4)],
                knots=[0, 0, 0, 1, 1, 1], degree=2))
        make_face()
    extrude(amount=CUT_EXTRUDE17_DEPTH + CUT_EXTRUDE17_DEPTH_BACK, mode=Mode.SUBTRACT)

    # Sketch31 → Cut-Extrude18 (cut, through all)
    with BuildSketch(Plane.ZY.offset(18)):
        with Locations((-4.922469695, 24.905412087)):
            Circle(SKETCH31_R)
    extrude(amount=-CUT_EXTRUDE18_DEPTH, mode=Mode.SUBTRACT)

    # Sketch31<3> → Cut-Extrude19 (cut)
    with BuildSketch(Plane.ZY.offset(18)):
        Polygon((-5.41546104, 34.054639751), (11.74960782, 18.74580534), (3.09678837, 9.043809897), (-14.06828049, 24.352644308), align=None)
    extrude(amount=-CUT_EXTRUDE19_DEPTH, mode=Mode.SUBTRACT)

    # Sketch32 → Cut-Extrude20 (cut)
    with BuildSketch(Plane.ZY.offset(18)):
        with Locations((-11.584503567, 30.654960303)):
            Circle(SKETCH32_R)
    extrude(amount=-CUT_EXTRUDE20_DEPTH, mode=Mode.SUBTRACT)

    # Sketch32<3> → Cut-Extrude21 (cut)
    with BuildSketch(Plane.ZY.offset(18)):
        with Locations((-11.584503567, 30.654960303)):
            Circle(SKETCH32_3_R)
        with Locations(Location((10.118376889, 12.711132154, 0), (0, 0, 180))):
            Circle(SKETCH32_3_R)
    extrude(amount=-CUT_EXTRUDE21_DEPTH, mode=Mode.SUBTRACT)


solid = part.part
